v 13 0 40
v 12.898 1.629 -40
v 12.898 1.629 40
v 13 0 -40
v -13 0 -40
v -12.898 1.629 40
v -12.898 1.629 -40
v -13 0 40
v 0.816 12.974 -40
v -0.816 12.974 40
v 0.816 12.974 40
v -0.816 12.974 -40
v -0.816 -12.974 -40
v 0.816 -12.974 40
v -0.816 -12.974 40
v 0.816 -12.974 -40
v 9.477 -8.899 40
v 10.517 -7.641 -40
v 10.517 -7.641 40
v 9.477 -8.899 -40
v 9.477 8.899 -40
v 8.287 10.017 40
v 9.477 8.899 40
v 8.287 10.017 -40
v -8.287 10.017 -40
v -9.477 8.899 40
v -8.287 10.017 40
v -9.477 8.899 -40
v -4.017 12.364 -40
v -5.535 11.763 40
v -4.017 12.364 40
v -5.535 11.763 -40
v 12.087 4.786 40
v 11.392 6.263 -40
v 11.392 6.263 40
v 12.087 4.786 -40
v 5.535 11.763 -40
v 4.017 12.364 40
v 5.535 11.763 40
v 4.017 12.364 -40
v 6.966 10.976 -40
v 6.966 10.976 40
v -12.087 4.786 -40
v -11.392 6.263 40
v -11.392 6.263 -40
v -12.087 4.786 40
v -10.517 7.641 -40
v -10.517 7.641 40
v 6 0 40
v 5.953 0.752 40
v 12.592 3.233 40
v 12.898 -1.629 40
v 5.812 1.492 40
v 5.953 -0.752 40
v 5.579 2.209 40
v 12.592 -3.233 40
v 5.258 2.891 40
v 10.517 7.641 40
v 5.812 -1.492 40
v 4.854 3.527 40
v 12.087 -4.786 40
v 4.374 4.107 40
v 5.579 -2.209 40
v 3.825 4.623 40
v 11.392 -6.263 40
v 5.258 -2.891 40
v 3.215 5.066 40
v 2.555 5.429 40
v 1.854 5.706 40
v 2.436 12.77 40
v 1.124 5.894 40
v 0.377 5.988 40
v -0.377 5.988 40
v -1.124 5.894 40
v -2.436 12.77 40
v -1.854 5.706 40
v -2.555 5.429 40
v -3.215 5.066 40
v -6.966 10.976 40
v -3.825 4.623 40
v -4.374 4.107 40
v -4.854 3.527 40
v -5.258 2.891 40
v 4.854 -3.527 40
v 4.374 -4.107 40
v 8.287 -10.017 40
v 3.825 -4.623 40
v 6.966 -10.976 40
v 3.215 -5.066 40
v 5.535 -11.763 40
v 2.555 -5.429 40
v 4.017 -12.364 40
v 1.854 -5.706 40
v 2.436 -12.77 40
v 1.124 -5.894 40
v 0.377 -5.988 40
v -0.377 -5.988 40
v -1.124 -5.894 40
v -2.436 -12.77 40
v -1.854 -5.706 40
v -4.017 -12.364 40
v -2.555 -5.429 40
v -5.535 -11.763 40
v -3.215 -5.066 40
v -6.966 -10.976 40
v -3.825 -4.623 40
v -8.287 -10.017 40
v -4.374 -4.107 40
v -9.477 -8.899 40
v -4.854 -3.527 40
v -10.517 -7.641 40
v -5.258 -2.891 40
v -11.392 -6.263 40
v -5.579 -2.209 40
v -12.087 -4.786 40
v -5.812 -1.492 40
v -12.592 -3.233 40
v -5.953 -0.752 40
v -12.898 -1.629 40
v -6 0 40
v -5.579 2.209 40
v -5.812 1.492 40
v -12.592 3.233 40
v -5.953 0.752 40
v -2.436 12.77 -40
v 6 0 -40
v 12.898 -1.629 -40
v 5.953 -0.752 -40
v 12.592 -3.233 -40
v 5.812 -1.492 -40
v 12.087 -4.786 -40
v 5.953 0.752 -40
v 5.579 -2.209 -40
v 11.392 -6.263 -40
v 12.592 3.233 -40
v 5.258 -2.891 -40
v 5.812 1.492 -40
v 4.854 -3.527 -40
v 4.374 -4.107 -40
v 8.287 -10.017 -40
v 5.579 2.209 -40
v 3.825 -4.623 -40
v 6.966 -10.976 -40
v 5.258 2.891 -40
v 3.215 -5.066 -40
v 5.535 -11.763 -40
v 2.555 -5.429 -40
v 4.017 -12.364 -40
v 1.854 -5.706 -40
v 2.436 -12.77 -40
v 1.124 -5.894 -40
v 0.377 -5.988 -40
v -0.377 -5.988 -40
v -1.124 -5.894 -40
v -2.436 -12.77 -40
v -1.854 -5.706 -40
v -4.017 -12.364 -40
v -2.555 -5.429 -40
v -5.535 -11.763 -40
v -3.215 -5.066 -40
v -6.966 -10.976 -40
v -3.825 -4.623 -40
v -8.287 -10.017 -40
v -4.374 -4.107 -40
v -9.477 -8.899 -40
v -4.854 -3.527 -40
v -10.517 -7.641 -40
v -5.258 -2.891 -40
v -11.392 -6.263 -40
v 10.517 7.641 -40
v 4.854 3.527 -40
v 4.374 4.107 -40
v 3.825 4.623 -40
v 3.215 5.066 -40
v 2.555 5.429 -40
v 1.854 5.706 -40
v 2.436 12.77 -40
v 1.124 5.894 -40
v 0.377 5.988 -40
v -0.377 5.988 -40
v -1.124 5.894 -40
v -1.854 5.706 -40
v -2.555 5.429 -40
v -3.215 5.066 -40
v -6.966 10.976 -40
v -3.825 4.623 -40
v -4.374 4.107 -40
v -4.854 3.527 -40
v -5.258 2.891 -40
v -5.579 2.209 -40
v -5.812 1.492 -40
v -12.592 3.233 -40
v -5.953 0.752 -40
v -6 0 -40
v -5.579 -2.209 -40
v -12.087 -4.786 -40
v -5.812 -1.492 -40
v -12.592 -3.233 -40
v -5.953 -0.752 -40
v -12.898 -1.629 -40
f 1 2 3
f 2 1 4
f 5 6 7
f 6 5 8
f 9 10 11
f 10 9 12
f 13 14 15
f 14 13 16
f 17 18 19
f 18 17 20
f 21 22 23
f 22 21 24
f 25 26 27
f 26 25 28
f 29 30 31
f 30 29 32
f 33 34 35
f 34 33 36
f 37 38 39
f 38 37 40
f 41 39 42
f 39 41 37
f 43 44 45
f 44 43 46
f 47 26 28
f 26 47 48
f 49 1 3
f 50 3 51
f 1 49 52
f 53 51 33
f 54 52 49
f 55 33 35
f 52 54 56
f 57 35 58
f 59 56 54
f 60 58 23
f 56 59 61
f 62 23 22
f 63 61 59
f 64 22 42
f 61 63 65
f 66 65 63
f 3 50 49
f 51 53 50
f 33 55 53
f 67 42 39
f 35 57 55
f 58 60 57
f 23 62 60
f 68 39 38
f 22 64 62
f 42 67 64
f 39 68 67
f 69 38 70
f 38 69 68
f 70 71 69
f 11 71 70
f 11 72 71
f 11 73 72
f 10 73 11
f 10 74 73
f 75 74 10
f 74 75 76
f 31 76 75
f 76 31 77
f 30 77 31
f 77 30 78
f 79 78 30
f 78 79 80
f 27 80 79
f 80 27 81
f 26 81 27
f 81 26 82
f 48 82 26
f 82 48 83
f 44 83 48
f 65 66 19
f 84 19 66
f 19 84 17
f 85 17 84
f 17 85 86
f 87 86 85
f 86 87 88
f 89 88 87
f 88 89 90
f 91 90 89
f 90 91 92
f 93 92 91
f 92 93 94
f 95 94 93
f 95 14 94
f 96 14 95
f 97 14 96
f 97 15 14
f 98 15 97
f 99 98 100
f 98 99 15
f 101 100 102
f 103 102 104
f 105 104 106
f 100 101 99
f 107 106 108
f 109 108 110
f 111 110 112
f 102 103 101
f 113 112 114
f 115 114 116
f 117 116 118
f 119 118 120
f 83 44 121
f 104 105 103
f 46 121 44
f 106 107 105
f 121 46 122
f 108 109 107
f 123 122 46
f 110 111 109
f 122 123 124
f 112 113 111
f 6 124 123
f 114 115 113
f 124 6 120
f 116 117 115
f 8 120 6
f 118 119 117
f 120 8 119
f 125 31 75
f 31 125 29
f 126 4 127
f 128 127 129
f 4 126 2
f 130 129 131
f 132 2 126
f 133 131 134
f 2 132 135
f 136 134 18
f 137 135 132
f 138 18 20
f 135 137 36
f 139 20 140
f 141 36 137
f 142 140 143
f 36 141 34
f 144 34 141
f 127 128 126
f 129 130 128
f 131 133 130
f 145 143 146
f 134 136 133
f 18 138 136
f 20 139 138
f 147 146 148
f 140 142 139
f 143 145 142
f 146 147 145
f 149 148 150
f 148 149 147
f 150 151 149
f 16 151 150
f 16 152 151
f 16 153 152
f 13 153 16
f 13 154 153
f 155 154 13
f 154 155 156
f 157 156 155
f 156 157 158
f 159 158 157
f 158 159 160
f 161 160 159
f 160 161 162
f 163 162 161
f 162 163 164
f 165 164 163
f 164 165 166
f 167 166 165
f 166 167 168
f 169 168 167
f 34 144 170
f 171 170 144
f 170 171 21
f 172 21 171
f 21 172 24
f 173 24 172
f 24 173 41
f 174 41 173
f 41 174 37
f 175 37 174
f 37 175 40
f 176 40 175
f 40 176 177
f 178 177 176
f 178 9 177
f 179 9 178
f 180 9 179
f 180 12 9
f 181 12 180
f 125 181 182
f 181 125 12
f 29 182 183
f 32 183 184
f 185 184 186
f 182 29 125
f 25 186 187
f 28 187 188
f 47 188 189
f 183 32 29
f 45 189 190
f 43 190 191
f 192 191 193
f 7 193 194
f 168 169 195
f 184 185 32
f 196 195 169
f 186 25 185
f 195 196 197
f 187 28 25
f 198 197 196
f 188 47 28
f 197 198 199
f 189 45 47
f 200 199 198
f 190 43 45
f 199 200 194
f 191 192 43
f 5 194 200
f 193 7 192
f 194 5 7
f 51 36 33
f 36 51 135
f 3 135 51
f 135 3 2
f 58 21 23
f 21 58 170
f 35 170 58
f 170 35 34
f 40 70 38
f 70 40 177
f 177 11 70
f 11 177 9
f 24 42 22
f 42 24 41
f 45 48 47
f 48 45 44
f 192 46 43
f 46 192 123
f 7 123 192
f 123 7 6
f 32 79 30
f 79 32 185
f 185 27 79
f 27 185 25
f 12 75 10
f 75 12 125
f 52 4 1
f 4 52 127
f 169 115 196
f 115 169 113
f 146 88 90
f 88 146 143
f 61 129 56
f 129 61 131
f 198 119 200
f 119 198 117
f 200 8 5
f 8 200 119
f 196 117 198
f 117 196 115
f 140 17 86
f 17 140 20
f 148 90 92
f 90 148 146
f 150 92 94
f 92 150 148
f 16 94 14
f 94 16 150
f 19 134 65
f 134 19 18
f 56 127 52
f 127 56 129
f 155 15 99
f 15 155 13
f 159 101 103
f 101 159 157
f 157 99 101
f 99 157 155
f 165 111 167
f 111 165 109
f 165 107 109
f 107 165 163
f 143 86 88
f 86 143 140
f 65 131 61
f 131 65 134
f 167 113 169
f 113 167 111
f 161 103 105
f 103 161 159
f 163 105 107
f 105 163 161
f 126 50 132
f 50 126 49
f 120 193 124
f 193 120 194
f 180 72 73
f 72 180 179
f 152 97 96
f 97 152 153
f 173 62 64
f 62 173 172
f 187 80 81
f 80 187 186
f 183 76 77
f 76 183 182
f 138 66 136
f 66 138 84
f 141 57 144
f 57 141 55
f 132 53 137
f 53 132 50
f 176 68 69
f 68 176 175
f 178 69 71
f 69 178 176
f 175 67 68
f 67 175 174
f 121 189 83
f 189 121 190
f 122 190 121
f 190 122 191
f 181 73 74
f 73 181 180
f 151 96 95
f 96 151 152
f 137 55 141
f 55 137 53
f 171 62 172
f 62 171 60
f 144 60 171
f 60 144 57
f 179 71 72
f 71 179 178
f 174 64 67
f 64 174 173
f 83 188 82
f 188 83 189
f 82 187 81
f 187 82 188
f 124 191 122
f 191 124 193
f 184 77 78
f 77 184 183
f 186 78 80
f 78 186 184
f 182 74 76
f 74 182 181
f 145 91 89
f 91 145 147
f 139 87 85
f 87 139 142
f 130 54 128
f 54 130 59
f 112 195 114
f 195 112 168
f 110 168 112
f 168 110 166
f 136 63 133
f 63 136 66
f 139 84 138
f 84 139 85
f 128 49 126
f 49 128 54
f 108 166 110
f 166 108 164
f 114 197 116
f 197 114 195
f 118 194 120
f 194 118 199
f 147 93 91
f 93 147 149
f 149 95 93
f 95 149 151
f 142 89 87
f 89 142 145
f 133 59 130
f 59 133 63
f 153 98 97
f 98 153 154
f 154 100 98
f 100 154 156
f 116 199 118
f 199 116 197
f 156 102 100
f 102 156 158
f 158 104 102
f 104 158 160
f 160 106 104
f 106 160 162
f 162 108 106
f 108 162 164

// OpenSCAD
$fn = 50;


difference() {
	union() {
		translate(v = [0, 0, -40.0000000000]) {
			cylinder(h = 80, r = 13.0000000000);
		}
	}
	union() {
		translate(v = [0, 0, -100.0000000000]) {
			cylinder(h = 200, r = 6);
		}
	}
}
